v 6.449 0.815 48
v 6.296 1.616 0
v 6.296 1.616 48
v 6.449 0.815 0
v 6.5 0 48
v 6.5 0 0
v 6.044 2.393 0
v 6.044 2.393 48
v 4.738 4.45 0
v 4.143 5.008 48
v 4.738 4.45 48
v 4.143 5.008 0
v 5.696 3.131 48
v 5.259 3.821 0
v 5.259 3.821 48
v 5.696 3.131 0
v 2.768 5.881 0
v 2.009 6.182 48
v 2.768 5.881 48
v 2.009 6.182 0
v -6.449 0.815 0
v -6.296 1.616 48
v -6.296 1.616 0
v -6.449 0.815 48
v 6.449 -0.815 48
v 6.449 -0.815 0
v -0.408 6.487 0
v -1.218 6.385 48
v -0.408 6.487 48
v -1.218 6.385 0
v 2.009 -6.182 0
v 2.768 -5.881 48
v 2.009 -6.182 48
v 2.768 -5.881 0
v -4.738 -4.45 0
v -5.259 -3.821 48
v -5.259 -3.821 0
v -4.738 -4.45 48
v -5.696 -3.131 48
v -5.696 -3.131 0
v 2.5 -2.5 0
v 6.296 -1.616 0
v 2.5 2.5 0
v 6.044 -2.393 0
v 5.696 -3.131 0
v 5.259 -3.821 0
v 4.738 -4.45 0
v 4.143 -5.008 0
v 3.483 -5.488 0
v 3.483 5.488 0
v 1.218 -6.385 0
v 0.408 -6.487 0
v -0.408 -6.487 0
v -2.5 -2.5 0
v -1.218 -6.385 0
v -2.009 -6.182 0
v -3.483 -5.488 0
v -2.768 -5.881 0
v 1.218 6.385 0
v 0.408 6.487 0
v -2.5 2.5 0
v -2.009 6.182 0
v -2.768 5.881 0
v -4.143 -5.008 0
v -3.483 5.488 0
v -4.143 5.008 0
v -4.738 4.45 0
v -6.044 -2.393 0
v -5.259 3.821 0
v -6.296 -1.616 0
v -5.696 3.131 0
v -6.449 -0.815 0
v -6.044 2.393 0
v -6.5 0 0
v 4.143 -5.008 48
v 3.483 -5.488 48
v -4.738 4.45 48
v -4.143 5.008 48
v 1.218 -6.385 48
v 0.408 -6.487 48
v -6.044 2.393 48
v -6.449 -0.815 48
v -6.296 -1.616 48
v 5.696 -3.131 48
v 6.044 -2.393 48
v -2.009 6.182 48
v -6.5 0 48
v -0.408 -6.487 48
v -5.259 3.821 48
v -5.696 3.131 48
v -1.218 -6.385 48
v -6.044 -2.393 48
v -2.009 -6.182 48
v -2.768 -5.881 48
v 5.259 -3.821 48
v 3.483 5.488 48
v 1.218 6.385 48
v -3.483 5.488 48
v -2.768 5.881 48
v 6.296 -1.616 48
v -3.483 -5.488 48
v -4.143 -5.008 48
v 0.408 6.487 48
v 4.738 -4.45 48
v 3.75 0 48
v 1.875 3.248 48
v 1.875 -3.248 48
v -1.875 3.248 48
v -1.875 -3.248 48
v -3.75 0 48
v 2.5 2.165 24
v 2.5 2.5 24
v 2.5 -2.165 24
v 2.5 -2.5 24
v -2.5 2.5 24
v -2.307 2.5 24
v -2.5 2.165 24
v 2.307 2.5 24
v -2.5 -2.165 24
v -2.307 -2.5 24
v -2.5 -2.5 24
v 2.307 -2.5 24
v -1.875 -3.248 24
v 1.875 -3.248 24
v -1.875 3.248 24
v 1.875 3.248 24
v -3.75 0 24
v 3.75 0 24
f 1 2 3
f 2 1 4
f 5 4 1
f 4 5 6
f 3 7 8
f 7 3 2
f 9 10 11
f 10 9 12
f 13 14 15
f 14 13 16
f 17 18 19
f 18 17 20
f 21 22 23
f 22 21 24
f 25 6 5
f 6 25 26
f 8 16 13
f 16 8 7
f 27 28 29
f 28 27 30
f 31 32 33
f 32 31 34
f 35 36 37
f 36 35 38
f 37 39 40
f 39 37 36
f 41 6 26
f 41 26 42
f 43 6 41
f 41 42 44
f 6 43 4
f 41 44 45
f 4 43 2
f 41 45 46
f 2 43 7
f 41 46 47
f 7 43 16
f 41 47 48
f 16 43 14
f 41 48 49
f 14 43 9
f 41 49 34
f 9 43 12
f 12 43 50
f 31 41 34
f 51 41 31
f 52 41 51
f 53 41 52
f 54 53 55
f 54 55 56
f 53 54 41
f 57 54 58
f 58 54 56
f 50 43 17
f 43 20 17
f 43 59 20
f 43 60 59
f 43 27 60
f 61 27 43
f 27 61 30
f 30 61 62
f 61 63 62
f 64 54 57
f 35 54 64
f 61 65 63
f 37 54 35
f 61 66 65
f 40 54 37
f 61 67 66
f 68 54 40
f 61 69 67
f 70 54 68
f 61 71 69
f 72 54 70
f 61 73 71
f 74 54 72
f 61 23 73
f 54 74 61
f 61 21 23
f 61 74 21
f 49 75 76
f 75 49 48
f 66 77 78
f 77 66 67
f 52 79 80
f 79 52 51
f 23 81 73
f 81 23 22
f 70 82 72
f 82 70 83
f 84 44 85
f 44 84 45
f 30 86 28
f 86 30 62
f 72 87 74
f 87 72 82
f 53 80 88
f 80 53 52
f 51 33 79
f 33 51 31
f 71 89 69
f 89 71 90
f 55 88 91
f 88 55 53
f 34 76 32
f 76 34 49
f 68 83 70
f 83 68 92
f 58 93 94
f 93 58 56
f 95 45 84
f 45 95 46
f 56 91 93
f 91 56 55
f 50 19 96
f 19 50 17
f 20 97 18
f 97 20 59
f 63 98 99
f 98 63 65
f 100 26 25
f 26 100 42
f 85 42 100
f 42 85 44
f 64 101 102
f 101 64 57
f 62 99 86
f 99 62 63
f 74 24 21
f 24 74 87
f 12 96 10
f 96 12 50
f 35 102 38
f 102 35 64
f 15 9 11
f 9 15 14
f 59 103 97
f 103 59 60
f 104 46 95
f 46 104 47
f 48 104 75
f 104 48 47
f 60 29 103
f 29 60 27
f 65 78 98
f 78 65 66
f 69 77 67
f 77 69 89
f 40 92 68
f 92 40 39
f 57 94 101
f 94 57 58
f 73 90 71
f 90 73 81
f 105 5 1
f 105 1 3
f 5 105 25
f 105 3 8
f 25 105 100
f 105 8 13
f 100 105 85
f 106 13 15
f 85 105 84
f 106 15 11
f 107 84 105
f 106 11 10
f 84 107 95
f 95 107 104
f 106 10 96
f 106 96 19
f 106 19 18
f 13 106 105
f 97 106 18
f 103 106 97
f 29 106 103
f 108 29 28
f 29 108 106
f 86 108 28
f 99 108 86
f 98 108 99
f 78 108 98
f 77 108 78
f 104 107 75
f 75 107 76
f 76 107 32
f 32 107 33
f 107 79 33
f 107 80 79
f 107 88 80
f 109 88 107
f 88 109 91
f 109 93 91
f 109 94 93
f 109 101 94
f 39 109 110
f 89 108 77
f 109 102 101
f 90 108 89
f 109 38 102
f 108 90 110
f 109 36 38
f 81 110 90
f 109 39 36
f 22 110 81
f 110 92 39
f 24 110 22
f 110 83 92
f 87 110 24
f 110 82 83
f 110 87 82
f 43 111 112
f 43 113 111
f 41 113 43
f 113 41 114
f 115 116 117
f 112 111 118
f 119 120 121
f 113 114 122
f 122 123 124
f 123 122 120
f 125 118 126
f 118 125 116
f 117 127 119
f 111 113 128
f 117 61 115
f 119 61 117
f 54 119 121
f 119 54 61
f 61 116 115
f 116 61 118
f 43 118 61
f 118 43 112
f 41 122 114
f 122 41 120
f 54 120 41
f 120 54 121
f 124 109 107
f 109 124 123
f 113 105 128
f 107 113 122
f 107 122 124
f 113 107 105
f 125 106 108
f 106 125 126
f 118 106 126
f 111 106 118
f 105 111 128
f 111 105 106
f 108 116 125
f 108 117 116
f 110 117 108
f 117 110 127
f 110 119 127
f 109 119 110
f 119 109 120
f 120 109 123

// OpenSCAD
/*

Design to create a coffee grinder adapter for my drill

All sizes are in mm
 */

// Top
//     <     outer diameter top    >
//      ___________________________
//     |____                   ____| <outer_height_top
//         |   (hole width)    |     <inner_height_top
//         |________| |________|     <inner_height_top
//          <inner diameter top>

FN = 50;

inner_diameter_top = 54;
outer_diameter_top = 66;
inner_height_top = 15;
outer_height_top = 3;
// These are the holes in the inner diameter cylinder that
// keep the whole thing in place
hole_width_top = 3;
hole_height_top = 10;
hole_depth_top = 1;


// The hole for the adapter
diameter_hole = 13.5;
// Slight modification
_diameter_hole = diameter_hole - 0.5;
// The width of the bar that is used to drive the grinder
width_driver_grinder = 5;
width_driver_drill = 7.5;
height_driver_grinder = 24;


module grinder_top() {
    /*
    Here we define the top for the grinder. It should have all the same dimensions as the original one
     */
    difference() {
        union() {
            translate([0, 0, inner_height_top]) {
                cylinder(h = outer_height_top, d = outer_diameter_top, $fn = FN);}
            cylinder(h = inner_height_top, d = inner_diameter_top, $fn = FN);
        };

        cylinder(h = inner_height_top + outer_height_top, d = diameter_hole);
        translate([inner_diameter_top / 2, 0, 0]) {
            cube([2 * hole_depth_top, hole_width_top, 2 * hole_height_top], center = true);
        };
        translate([0, inner_diameter_top / 2, 0]) {
            cube([hole_width_top, 2 * hole_depth_top, 2 * hole_height_top], center = true);
        };
        translate([- inner_diameter_top / 2, 0, 0]) {
            cube([2 * hole_depth_top, hole_width_top, 2 * hole_height_top], center = true);
        };
        translate([0, - inner_diameter_top / 2, 0]) {
            cube([hole_width_top, 2 * hole_depth_top, 2 * hole_height_top], center = true);
        };
    }
}


module grinder_adapter() {
    // Now we want to make the adapter between the grinder and the drilling machine
    difference() {
        cylinder(h = 2 * height_driver_grinder, d = _diameter_hole, $fn = FN);
        cube([width_driver_grinder, width_driver_grinder, 2 * height_driver_grinder], center = true);
        translate([0, 0, height_driver_grinder]){
            cylinder(h = height_driver_grinder, d = width_driver_drill, $fn=6);
        }
    }

}



//grinder_top();
grinder_adapter();
